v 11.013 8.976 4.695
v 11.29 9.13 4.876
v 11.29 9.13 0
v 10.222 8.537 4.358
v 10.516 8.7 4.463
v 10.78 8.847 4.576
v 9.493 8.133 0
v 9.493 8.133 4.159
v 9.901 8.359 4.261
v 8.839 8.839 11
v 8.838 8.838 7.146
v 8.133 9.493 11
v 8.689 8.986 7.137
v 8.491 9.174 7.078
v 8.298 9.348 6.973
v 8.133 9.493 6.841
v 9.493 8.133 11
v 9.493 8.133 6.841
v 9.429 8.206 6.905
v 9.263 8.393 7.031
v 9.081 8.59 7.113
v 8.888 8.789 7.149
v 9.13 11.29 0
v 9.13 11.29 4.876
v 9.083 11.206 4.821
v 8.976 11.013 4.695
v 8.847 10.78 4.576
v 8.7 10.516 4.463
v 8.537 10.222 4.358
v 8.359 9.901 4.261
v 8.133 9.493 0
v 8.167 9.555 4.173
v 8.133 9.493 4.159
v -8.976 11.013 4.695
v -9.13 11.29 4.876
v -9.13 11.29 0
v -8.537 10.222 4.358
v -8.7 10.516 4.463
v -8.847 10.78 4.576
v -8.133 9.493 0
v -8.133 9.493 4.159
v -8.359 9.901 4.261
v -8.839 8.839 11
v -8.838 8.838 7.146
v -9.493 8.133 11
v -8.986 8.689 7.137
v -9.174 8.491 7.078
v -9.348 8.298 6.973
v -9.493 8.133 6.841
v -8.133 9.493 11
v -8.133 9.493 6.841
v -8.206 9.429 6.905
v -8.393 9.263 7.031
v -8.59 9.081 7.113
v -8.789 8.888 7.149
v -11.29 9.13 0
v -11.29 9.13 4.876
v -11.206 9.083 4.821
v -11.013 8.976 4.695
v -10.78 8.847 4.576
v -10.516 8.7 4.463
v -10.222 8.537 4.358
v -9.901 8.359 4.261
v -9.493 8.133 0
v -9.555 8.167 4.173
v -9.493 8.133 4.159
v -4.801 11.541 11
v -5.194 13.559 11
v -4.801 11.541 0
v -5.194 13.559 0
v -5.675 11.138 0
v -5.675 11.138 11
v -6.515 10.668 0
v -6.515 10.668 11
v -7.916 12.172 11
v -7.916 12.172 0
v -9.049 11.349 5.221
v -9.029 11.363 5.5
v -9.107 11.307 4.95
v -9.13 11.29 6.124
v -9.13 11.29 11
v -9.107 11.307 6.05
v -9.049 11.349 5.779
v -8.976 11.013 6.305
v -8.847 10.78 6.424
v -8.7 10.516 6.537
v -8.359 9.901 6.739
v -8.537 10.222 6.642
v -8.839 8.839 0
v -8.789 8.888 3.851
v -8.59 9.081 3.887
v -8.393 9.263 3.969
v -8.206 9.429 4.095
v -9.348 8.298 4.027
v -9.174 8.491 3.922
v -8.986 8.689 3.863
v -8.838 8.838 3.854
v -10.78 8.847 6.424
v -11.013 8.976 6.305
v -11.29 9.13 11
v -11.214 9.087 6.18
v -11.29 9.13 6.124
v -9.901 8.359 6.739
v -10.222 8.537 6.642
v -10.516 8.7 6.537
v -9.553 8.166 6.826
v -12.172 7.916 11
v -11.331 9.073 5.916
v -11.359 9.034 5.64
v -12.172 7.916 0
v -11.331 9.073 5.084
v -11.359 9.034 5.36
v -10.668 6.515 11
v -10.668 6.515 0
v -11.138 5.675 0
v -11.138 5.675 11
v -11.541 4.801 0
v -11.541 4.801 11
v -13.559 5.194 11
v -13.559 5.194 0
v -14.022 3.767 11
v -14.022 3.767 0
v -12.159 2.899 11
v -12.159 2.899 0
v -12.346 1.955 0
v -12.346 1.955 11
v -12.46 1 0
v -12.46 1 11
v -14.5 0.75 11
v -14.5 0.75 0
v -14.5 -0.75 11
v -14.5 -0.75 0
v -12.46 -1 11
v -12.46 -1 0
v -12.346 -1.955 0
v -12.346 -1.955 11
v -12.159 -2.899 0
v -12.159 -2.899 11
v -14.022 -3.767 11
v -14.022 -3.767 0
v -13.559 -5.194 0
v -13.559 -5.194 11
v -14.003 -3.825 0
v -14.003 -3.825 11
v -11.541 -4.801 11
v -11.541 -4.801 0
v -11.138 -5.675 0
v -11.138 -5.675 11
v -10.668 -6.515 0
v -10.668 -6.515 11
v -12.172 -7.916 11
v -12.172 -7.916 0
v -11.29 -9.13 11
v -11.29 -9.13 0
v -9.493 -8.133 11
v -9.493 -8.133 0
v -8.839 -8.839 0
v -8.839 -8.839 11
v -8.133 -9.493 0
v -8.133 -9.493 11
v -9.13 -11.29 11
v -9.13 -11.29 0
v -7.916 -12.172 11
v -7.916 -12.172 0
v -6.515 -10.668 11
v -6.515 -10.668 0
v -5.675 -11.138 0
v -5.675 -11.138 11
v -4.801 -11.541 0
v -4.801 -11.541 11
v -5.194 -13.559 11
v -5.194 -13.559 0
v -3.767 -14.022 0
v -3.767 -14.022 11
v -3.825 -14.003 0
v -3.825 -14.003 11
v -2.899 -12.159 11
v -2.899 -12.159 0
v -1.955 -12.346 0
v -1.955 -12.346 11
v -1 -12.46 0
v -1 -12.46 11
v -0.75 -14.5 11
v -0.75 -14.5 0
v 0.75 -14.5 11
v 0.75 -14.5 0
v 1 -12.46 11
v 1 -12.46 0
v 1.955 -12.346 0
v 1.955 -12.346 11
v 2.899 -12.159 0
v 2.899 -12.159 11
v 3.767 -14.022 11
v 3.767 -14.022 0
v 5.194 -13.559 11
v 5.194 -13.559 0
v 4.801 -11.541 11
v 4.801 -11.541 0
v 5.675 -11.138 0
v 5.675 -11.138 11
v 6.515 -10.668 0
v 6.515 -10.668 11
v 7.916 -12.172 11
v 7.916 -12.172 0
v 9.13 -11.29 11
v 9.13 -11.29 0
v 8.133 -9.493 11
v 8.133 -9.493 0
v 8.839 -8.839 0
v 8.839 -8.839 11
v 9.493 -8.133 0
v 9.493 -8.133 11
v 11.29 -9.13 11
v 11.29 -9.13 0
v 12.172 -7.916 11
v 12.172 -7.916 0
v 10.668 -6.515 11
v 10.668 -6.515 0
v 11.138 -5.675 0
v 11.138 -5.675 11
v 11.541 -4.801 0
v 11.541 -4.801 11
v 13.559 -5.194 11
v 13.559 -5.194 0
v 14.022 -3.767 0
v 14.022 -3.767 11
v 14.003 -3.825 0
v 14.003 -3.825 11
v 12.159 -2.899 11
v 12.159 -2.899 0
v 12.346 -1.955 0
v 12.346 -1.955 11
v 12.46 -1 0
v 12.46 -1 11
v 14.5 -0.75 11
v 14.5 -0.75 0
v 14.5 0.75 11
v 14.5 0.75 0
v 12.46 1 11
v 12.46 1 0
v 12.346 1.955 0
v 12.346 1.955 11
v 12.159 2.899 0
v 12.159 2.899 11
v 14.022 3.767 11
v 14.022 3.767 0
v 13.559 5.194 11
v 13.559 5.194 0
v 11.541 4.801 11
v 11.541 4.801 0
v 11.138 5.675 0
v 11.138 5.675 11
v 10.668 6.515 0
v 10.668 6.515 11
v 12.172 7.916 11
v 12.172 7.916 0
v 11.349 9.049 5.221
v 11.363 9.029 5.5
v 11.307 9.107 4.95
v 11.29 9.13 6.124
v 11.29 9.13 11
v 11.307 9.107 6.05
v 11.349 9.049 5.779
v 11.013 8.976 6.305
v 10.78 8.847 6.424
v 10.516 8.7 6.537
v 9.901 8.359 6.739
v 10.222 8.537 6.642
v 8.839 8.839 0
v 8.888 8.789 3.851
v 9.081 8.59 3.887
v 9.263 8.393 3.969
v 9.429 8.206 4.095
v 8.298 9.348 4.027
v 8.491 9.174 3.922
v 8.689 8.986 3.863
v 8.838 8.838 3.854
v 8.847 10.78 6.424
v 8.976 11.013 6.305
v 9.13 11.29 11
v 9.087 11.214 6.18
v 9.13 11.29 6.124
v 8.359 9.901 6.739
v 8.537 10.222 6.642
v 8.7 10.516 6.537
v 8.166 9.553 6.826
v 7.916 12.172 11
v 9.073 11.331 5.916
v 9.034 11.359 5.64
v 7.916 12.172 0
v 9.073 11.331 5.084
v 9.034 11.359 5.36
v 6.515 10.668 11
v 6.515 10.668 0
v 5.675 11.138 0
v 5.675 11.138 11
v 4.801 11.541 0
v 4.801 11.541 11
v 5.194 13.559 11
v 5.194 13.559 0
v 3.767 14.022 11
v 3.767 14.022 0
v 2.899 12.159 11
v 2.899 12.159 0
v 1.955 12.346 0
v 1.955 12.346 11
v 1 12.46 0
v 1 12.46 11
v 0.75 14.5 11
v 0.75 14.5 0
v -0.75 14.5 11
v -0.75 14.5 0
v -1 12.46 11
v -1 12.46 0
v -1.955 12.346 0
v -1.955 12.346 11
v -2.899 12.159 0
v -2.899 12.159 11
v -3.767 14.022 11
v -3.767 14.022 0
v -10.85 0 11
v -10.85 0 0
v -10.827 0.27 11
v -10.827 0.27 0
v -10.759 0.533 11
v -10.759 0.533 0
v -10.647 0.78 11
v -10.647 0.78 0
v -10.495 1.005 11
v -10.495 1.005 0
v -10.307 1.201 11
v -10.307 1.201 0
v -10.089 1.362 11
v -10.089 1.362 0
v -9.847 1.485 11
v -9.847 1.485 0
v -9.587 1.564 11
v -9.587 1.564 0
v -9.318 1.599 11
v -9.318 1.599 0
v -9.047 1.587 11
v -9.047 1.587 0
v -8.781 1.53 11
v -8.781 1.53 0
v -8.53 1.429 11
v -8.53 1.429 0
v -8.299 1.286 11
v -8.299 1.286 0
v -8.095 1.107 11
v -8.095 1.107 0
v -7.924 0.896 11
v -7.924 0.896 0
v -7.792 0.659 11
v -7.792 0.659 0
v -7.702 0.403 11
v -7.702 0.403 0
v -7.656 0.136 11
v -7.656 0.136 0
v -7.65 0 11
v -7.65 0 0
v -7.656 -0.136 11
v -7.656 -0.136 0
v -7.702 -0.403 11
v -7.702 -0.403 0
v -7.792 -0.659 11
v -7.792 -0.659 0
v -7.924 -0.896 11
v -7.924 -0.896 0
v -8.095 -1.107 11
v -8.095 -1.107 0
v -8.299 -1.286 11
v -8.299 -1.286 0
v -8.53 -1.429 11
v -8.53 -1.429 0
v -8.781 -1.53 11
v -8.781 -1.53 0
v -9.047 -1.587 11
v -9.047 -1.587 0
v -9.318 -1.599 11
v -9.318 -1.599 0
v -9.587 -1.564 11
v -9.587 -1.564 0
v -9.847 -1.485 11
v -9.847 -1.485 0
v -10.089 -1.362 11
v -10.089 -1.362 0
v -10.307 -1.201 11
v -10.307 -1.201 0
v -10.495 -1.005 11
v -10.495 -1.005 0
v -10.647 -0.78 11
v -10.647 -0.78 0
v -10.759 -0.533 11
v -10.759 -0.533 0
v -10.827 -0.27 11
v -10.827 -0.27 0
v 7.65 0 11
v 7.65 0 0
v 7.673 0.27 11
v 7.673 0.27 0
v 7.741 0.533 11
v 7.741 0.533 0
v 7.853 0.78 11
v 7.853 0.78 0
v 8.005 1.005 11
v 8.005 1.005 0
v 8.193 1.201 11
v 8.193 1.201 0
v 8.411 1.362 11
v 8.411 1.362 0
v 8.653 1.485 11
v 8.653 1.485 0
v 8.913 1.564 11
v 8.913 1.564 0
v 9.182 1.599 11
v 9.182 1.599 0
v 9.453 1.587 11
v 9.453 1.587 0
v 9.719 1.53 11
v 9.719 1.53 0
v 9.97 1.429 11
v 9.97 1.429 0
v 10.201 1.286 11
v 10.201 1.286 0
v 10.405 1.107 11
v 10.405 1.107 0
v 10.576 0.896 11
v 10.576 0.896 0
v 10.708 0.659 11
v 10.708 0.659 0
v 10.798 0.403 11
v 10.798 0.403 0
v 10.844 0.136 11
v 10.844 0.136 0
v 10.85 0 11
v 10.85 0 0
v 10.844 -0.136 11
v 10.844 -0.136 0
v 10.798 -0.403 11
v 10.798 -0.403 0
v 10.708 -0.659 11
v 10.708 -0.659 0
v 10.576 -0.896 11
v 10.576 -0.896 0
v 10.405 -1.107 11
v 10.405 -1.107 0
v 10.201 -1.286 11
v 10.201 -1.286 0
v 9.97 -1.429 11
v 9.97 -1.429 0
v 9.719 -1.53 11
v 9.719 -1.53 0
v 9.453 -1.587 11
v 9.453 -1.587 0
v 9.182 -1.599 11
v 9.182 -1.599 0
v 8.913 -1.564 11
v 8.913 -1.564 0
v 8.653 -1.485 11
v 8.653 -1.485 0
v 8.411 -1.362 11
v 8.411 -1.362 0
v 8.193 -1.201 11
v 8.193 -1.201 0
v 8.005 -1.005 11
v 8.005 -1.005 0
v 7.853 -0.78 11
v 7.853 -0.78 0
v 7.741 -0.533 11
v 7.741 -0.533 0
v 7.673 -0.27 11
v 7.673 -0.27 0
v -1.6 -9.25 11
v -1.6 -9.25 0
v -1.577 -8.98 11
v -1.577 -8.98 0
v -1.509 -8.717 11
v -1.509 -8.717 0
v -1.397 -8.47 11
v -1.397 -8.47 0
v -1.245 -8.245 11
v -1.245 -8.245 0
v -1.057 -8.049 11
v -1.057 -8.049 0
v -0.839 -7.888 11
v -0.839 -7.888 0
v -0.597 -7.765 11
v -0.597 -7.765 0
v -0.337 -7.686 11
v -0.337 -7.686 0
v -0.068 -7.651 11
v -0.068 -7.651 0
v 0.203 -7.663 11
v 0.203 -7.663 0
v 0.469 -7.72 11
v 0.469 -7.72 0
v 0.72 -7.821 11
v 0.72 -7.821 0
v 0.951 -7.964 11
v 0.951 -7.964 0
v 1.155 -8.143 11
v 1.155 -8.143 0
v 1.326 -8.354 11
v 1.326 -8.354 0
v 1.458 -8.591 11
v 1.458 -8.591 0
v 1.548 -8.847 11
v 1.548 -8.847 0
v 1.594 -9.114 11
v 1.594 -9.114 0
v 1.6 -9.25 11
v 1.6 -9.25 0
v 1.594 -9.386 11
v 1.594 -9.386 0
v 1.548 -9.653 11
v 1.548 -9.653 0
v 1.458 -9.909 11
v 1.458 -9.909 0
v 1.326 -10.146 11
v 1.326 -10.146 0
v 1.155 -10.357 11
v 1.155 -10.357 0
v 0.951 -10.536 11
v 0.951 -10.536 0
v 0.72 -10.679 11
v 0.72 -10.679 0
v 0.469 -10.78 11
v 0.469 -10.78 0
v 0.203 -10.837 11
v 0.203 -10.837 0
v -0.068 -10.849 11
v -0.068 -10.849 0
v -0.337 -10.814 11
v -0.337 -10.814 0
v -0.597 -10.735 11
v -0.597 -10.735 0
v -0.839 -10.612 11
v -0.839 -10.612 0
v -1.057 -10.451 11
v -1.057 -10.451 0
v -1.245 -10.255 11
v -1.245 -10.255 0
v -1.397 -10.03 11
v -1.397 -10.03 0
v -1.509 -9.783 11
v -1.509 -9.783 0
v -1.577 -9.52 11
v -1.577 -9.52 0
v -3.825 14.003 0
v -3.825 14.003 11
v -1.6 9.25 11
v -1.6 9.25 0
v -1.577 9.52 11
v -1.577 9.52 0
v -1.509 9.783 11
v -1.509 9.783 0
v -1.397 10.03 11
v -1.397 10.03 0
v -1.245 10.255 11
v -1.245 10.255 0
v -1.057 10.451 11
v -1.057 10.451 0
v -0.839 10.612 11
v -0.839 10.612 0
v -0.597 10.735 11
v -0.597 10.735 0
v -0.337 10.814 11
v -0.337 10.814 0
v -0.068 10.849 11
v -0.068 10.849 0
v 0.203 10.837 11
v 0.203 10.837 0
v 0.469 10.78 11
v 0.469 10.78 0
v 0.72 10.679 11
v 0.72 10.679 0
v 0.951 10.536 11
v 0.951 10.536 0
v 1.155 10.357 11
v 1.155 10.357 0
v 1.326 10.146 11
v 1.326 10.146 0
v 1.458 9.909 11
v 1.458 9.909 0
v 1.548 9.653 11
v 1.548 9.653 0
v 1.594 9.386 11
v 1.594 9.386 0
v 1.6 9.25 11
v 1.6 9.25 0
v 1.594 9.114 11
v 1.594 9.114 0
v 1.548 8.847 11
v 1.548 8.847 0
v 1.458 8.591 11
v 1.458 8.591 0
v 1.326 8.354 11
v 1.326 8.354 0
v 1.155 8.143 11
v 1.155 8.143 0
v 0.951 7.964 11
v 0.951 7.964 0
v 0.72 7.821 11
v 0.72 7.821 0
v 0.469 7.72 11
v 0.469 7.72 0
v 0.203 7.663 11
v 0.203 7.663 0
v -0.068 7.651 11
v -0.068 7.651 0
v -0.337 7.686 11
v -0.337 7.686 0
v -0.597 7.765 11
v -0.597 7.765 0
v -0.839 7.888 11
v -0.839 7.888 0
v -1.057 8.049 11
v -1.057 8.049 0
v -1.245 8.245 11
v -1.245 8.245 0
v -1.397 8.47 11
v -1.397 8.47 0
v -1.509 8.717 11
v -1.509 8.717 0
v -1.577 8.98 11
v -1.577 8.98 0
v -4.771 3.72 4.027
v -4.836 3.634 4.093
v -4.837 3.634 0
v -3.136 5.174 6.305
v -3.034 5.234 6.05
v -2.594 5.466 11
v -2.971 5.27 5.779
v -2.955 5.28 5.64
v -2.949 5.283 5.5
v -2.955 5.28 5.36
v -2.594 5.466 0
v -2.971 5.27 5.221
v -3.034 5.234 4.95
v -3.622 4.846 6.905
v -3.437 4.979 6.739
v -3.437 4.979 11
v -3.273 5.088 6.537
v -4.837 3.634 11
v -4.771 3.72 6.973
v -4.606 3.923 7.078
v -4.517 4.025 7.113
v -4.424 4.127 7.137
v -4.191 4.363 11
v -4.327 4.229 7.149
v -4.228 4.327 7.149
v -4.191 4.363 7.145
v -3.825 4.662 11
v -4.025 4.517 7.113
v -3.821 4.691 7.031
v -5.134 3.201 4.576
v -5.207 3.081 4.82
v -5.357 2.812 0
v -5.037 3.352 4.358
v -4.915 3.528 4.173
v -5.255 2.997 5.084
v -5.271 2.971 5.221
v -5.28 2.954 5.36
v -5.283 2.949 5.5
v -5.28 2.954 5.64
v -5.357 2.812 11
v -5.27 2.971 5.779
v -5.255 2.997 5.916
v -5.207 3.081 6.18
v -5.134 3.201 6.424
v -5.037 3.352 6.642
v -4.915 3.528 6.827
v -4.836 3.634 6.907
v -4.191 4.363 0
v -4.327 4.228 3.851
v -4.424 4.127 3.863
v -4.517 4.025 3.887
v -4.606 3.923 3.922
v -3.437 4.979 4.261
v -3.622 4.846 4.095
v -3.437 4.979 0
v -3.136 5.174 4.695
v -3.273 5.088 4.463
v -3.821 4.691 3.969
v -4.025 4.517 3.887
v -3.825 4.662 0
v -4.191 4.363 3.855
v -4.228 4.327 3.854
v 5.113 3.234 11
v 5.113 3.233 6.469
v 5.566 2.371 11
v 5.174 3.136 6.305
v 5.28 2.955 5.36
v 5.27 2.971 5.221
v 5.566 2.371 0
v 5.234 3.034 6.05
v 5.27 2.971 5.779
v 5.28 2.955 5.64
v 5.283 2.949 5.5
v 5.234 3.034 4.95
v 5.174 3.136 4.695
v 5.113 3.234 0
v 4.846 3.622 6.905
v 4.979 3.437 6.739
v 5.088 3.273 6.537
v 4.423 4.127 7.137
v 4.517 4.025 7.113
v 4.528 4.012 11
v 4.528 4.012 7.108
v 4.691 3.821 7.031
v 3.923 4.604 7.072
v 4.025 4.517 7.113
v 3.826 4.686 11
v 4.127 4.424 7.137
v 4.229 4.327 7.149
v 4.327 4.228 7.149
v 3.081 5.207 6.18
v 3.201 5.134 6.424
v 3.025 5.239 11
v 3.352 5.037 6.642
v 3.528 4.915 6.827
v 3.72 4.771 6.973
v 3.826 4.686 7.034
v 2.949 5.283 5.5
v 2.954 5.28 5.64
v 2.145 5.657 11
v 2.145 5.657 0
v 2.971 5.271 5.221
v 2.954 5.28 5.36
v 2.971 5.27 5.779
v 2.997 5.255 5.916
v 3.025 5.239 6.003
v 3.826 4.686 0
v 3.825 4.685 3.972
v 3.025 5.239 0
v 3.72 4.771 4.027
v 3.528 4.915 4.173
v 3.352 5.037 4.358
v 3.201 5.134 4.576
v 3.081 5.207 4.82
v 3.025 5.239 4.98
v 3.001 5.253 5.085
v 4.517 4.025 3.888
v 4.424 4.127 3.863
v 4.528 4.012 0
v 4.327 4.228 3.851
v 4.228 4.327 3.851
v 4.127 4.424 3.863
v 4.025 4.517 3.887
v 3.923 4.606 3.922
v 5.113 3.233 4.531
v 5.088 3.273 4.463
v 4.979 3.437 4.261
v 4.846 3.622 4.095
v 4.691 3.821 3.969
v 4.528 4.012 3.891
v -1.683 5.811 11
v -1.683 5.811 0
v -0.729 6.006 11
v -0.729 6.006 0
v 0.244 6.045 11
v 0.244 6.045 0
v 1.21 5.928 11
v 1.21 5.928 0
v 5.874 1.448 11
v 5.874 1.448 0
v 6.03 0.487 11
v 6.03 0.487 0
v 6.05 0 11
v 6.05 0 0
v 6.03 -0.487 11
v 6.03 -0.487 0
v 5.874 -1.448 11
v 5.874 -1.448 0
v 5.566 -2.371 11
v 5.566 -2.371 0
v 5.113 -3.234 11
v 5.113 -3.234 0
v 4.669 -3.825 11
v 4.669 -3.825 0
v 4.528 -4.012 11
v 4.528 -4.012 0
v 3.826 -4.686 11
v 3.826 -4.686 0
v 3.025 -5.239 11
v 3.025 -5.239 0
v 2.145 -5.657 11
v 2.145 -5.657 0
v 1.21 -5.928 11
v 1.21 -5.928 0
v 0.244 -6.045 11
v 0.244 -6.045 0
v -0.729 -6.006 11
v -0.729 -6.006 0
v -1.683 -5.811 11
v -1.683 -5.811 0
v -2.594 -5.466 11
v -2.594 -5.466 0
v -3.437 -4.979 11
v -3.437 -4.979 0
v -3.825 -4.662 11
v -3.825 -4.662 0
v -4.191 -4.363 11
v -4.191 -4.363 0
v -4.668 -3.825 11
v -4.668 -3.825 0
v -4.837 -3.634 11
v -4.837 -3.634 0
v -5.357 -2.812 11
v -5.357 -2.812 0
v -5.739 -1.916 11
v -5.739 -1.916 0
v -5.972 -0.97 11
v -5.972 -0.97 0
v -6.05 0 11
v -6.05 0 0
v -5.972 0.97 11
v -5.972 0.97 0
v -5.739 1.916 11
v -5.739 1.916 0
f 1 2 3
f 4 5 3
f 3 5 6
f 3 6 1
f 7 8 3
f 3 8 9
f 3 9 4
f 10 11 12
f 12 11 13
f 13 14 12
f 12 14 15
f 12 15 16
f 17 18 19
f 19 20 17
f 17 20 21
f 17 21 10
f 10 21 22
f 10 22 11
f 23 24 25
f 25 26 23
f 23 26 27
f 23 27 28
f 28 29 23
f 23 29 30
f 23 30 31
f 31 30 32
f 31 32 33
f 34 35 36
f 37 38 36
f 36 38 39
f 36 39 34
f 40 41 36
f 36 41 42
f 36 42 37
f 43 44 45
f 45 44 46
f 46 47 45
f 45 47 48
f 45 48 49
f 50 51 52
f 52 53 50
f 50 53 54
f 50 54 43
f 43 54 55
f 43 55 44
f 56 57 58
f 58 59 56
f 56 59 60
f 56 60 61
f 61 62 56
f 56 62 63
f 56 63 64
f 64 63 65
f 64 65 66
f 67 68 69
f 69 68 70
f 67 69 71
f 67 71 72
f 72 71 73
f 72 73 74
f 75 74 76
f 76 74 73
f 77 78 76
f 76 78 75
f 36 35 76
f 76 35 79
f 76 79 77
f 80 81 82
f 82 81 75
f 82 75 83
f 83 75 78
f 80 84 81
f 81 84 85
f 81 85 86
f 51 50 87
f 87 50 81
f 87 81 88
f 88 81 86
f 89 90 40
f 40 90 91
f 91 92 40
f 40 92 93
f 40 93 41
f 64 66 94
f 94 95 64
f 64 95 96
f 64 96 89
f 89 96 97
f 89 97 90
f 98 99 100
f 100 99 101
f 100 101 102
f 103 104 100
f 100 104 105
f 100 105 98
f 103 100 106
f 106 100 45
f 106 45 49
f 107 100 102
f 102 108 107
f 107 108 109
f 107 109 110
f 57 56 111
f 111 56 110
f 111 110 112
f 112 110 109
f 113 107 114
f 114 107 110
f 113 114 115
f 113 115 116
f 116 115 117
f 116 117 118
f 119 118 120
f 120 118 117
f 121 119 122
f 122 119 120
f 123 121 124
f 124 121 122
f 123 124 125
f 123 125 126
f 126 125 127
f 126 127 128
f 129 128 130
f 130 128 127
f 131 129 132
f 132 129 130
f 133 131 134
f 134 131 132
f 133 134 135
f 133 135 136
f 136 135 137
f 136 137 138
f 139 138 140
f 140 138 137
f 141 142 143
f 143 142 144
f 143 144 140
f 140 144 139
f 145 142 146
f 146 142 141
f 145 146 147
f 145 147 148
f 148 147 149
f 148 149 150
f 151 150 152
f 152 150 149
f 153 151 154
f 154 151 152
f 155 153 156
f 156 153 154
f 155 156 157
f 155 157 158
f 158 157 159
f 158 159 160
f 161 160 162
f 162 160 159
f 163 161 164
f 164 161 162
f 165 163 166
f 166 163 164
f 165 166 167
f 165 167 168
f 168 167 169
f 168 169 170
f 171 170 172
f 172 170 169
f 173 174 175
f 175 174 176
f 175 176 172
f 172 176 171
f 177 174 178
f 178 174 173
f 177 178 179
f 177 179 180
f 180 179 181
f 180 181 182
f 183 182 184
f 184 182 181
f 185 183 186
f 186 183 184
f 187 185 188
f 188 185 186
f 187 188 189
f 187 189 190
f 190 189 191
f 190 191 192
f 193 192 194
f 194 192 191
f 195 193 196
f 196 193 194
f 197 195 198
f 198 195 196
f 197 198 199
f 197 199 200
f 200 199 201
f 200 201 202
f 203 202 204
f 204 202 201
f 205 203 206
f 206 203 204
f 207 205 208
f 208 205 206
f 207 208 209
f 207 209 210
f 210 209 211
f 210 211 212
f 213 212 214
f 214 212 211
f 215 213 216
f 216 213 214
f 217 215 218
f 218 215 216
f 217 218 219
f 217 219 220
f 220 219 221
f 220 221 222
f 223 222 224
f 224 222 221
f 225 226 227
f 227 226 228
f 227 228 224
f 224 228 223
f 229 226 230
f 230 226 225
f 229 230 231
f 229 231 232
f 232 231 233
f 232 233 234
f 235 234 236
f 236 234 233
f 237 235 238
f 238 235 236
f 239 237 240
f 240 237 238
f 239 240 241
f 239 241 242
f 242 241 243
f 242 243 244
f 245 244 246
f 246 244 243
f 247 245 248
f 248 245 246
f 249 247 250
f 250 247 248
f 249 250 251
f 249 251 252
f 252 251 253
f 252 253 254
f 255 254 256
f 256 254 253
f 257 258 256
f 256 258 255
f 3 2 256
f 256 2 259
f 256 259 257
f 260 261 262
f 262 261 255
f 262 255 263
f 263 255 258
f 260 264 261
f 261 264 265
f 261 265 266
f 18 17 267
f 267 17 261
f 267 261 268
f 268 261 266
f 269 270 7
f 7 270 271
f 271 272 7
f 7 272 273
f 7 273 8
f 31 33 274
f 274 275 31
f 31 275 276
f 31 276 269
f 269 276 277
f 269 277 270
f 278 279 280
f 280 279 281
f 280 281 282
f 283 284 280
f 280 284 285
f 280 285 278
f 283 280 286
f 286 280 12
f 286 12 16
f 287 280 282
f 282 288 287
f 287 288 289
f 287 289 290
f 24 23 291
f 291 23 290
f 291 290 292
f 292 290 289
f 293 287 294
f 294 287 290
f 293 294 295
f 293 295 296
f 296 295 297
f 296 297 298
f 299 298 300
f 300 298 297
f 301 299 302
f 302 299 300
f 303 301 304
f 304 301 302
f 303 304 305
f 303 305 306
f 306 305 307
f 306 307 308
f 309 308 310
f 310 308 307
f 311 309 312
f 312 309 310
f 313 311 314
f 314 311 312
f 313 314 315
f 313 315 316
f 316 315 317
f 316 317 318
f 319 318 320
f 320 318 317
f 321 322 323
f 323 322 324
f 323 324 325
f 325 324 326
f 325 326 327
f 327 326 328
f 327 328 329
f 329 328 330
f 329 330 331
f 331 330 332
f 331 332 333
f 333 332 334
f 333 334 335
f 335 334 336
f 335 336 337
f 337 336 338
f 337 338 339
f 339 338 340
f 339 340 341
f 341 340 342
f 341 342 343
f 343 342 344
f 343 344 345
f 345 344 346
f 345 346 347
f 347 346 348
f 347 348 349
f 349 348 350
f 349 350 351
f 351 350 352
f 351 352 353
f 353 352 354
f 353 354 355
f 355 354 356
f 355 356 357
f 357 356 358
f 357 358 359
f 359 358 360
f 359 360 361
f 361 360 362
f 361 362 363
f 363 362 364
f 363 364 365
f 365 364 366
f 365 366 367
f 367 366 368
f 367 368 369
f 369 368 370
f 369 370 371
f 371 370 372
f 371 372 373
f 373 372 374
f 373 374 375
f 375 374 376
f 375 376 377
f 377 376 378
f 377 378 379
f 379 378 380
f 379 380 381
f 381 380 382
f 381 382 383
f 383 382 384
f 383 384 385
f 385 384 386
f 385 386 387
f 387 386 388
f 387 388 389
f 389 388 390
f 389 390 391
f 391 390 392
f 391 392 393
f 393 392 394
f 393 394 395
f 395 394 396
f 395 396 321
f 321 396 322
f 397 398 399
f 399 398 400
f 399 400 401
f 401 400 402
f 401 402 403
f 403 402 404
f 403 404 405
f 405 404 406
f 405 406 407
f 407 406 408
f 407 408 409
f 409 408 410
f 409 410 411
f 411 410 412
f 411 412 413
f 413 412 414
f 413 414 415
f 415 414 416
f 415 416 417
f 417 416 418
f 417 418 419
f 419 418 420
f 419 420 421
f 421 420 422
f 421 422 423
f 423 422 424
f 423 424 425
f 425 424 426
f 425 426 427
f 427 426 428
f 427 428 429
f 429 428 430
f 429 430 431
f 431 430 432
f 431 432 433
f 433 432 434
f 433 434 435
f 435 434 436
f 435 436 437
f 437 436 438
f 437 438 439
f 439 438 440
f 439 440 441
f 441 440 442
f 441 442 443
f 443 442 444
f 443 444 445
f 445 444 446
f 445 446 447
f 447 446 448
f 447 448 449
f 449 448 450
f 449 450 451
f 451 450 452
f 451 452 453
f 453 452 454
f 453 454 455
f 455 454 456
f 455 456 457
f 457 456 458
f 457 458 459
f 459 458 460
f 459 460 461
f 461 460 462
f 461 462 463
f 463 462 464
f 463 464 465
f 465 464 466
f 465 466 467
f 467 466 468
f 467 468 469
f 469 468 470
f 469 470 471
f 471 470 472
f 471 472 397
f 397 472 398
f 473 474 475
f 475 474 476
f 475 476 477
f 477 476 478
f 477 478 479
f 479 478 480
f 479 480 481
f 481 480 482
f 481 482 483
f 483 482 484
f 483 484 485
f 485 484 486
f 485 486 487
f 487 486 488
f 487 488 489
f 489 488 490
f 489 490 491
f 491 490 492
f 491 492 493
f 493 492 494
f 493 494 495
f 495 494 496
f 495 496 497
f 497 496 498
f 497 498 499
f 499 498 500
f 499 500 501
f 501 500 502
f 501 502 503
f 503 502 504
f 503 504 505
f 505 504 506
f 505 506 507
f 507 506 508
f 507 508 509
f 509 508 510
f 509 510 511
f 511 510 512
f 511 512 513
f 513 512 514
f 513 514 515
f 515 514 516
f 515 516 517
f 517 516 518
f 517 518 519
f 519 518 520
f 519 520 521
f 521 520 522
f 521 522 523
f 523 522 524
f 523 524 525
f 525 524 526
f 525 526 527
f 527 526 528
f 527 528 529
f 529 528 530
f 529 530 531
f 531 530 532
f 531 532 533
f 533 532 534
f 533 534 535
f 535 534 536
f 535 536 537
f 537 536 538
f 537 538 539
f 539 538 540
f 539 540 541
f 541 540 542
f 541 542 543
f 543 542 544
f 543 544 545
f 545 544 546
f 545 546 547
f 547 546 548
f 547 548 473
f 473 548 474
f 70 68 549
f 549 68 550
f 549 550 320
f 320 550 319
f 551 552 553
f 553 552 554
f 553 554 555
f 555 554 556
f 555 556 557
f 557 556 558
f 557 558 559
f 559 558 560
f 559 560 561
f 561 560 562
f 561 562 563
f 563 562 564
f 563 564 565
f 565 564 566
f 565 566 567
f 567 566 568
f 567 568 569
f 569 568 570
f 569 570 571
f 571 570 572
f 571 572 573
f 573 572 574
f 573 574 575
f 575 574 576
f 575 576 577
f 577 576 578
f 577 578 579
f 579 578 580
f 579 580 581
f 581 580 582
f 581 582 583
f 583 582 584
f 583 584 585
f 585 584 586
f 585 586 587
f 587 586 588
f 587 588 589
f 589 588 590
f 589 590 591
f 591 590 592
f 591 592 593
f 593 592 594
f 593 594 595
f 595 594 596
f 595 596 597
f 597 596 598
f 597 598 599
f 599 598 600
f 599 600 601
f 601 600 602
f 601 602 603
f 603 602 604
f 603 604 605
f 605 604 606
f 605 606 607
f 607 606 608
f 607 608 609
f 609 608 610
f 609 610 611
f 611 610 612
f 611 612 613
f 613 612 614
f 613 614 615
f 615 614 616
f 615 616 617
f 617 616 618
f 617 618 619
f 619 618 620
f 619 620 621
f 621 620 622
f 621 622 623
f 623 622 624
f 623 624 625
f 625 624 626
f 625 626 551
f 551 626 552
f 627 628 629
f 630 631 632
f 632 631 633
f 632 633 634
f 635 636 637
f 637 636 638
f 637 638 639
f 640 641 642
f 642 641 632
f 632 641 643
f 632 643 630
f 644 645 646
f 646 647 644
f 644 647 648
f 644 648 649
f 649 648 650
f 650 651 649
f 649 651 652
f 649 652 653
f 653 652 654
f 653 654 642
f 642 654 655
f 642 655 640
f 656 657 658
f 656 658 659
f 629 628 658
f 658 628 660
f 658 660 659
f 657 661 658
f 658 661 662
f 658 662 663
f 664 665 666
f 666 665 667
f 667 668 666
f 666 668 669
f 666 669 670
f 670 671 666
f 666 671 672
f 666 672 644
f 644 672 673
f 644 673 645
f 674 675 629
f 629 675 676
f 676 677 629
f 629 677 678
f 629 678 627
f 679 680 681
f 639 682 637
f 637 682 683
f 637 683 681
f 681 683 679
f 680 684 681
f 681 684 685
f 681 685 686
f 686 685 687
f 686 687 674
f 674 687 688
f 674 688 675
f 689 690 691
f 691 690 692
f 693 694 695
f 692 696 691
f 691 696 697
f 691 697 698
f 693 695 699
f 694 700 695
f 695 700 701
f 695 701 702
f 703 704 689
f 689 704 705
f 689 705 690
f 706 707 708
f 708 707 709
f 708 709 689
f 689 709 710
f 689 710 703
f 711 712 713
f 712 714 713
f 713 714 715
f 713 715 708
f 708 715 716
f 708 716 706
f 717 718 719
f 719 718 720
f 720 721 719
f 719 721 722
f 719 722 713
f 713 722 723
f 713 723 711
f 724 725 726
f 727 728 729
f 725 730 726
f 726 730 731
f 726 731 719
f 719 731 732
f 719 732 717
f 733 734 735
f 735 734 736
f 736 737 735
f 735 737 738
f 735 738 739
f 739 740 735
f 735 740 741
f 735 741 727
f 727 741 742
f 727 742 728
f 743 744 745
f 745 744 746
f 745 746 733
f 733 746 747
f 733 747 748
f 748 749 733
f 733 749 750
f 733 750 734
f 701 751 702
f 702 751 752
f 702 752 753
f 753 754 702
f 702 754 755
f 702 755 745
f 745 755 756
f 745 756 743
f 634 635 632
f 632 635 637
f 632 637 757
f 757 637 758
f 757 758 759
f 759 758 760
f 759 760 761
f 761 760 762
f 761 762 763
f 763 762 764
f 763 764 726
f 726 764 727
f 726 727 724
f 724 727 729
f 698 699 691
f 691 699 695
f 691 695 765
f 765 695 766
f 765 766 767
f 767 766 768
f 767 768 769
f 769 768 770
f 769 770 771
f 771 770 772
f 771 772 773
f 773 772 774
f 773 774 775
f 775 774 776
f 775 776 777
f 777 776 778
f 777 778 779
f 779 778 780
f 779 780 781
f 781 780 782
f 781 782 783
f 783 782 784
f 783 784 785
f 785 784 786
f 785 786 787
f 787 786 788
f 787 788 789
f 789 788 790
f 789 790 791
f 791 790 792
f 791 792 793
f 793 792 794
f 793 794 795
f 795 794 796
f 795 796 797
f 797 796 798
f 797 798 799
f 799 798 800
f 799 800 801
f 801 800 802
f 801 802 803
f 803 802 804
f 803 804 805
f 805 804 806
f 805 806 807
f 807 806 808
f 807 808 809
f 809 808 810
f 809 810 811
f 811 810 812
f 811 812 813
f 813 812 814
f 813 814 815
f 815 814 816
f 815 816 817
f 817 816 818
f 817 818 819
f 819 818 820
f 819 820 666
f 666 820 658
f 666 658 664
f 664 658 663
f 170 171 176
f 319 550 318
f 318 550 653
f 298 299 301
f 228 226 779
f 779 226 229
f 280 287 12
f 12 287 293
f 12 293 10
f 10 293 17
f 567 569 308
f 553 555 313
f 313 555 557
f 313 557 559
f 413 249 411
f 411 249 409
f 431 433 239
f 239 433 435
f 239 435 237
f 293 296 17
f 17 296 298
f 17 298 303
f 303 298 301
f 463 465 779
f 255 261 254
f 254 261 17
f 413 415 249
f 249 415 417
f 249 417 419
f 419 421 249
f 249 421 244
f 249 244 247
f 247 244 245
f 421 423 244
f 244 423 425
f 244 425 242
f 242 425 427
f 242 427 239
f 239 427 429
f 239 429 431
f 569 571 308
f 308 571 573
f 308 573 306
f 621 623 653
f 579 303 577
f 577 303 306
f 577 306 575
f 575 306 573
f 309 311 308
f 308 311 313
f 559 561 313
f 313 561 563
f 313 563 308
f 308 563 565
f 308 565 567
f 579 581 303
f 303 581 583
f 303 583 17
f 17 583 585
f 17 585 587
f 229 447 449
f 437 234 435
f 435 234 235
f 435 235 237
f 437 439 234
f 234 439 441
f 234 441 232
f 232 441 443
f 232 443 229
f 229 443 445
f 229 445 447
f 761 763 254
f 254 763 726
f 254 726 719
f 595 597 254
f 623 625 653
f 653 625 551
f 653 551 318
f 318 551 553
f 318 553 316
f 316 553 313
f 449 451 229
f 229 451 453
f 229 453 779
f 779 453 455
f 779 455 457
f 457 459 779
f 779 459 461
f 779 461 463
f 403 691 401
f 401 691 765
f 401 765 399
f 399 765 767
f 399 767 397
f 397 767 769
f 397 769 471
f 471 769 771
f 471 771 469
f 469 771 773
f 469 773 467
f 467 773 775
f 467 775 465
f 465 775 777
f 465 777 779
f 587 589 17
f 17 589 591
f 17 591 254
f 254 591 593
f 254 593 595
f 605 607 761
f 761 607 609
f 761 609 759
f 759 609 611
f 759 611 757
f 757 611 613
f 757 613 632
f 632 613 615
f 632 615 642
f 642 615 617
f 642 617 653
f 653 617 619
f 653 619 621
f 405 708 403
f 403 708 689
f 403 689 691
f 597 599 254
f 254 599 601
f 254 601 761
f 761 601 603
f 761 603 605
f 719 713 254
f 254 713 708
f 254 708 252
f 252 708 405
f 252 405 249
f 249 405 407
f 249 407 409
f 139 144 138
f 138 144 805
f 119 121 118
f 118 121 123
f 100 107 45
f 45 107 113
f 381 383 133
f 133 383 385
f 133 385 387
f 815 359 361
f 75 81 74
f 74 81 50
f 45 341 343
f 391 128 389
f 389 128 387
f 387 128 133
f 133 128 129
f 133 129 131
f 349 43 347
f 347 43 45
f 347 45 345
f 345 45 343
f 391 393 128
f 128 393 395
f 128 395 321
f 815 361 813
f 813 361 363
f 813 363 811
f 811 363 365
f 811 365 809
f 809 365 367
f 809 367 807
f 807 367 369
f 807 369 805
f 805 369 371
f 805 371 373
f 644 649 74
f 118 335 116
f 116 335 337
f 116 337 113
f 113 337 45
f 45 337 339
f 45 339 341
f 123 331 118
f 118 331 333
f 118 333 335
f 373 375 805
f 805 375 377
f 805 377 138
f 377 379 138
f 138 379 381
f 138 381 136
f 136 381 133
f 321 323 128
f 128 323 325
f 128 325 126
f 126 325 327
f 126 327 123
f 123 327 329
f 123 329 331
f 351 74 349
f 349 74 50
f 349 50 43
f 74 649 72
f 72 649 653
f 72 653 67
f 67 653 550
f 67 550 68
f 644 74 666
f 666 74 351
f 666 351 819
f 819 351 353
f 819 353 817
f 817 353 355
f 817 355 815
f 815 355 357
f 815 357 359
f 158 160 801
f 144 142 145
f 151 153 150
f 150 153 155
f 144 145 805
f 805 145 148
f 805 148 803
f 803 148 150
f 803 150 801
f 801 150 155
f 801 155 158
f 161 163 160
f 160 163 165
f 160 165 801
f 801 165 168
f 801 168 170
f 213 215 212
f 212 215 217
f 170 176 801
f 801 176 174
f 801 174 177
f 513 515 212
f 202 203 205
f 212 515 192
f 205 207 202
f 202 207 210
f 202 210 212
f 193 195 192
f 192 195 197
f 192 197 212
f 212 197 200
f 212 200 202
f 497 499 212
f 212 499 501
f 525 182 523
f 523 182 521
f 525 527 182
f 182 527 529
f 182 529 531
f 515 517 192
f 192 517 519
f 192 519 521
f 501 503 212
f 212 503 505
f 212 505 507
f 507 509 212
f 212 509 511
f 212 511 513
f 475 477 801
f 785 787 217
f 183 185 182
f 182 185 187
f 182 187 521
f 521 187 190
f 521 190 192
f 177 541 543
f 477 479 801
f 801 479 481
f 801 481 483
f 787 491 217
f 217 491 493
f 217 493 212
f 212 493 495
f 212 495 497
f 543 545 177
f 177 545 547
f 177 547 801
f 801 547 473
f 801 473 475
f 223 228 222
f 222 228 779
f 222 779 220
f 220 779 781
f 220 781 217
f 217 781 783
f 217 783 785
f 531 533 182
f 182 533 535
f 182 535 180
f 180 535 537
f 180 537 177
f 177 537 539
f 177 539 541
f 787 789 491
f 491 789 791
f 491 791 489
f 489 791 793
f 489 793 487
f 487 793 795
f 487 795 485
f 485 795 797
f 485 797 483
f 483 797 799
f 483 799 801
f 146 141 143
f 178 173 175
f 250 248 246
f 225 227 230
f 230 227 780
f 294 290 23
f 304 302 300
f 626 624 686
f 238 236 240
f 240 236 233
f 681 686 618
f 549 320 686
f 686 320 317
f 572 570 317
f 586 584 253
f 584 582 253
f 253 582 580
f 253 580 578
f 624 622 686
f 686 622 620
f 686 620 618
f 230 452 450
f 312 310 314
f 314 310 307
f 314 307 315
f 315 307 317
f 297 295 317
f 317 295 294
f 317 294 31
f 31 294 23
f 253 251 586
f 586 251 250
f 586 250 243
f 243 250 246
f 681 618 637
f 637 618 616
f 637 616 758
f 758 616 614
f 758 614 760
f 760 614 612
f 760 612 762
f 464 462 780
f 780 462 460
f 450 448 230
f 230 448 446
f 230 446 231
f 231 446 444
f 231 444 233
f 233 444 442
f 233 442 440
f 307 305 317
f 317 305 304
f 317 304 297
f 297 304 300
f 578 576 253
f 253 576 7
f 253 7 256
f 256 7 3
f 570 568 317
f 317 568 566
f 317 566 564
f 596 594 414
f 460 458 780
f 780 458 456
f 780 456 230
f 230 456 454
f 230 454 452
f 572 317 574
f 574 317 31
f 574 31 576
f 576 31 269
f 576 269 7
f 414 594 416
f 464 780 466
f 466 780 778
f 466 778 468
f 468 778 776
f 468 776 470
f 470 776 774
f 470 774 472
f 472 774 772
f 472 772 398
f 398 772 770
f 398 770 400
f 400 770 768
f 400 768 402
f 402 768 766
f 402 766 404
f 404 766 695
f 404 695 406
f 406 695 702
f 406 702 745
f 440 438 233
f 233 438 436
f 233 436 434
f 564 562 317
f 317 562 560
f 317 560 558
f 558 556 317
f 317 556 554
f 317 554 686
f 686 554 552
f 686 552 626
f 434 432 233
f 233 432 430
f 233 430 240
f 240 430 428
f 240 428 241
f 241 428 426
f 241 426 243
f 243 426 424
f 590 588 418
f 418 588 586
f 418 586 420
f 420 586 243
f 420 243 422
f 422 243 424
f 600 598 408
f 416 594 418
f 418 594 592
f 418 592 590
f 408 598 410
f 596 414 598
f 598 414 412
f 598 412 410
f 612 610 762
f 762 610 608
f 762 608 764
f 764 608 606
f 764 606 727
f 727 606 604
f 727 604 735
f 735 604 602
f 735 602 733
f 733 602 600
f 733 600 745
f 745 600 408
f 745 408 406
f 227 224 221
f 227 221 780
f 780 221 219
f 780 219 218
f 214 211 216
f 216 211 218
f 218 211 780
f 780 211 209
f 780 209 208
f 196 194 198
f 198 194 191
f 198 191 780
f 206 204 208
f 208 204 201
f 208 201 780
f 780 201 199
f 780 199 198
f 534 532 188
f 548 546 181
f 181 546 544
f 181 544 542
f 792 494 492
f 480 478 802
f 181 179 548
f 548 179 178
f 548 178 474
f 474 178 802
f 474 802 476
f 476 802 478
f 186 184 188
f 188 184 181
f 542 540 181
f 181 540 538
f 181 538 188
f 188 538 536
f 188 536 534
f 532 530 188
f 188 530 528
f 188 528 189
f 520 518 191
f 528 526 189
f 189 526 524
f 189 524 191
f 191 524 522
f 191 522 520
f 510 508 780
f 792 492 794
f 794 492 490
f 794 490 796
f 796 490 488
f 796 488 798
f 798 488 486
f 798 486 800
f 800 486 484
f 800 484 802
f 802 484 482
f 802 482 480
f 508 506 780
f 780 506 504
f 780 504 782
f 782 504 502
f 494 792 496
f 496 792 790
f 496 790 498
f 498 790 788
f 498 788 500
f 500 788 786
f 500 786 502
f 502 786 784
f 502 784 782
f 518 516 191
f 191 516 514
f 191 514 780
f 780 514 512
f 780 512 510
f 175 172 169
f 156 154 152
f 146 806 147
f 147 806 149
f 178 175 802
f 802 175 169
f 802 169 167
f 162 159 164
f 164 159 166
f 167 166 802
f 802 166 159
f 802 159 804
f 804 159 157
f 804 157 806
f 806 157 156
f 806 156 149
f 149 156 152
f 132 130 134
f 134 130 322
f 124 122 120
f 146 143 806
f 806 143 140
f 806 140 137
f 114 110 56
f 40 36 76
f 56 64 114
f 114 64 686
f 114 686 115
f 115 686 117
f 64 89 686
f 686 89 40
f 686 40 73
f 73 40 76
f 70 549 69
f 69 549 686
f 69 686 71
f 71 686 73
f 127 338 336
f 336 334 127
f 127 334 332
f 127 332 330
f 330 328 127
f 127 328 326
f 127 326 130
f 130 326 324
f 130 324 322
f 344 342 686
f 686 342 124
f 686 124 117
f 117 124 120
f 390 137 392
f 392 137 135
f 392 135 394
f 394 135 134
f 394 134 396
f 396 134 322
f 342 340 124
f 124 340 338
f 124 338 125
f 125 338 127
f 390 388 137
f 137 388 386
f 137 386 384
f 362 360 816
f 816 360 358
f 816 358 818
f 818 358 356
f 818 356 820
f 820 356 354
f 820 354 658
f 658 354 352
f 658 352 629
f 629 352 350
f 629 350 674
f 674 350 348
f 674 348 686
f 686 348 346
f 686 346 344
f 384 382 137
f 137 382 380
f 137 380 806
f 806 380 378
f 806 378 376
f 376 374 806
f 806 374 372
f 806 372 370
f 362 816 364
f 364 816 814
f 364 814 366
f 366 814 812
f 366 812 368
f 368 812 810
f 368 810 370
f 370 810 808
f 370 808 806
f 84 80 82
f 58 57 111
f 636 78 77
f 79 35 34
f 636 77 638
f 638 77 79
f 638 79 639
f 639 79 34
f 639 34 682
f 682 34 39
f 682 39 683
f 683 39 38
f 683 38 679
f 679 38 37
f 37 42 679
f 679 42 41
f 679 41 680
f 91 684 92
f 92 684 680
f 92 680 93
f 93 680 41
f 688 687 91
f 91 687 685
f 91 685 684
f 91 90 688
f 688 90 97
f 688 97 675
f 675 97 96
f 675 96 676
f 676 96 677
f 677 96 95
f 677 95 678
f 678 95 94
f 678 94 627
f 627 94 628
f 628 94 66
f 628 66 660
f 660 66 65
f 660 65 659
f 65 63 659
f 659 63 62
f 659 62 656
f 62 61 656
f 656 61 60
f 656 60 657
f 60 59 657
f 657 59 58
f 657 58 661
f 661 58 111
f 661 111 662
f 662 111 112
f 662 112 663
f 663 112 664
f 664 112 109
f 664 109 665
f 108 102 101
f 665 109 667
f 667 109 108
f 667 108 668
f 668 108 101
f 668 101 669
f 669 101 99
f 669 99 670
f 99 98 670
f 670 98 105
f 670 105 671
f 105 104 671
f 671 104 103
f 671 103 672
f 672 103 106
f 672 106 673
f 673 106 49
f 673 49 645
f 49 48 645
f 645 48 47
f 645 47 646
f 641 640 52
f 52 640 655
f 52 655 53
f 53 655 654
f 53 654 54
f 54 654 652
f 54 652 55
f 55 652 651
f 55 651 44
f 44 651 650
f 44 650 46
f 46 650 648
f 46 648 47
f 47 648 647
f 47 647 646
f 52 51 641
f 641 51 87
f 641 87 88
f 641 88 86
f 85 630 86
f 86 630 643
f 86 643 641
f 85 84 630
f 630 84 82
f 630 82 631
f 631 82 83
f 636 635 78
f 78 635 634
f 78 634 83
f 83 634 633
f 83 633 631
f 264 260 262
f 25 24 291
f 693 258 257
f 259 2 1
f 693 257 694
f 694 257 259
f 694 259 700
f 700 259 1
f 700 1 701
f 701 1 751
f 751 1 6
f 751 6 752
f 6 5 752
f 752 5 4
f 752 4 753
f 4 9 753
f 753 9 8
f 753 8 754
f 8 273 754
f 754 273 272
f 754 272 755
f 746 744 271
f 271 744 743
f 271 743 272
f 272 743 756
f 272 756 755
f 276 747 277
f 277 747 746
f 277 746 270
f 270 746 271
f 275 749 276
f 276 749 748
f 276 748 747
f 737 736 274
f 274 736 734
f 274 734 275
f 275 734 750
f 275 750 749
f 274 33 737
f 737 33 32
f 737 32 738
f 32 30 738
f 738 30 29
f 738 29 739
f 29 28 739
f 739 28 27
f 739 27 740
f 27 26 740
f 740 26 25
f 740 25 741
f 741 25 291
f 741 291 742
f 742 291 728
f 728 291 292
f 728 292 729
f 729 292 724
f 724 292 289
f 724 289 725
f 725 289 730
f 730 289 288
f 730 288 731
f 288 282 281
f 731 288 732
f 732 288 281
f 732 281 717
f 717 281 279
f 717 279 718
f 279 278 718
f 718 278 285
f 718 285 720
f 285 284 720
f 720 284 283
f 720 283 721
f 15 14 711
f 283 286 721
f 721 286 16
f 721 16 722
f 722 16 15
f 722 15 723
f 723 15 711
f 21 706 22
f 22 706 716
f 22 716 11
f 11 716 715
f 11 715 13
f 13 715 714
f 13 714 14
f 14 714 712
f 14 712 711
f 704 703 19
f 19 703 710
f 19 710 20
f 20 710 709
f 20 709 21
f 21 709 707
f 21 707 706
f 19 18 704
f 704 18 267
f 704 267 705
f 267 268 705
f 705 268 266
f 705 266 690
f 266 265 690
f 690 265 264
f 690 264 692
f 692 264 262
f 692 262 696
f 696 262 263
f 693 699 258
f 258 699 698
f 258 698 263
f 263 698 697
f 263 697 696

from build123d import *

# Parameters (mm, degrees)
SKETCH_1_R          = 1.6
SKETCH_1_R_2        = 6.05
EXTRUDE_1_DEPTH     = 11
SKETCH_2_R          = 1.65
CUT_EXTRUDE_3_DEPTH = 24.270152556
SKETCH_3_R          = 1.65
CUT_EXTRUDE_4_DEPTH = 24.270152604


with BuildPart() as part:
    # ｽｹｯﾁ1 → ﾎﾞｽ - 押し出し1 (new body)
    with BuildSketch(Plane.XY):
        with BuildLine():
            Line((1, 12.459935794), (0.75, 14.5))
            Line((0.75, 14.5), (-0.75, 14.5))
            Line((-0.75, 14.5), (-1, 12.459935794))
            ThreePointArc((-1, 12.459935794), (-1.955430813, 12.346104257), (-2.899275393, 12.159120124))
            Line((-2.899275393, 12.159120124), (-3.767454031, 14.022082232))
            Line((-3.767454031, 14.022082232), (-5.194038806, 13.55855674))
            Line((-5.194038806, 13.55855674), (-4.801388426, 11.541086135))
            ThreePointArc((-4.801388426, 11.541086135), (-5.674881247, 11.137581552), (-6.51474951, 10.668085059))
            Line((-6.51474951, 10.668085059), (-7.916123412, 12.171585358))
            Line((-7.916123412, 12.171585358), (-9.129648904, 11.289907479))
            Line((-9.129648904, 11.289907479), (-8.132783499, 9.492514554))
            ThreePointArc((-8.132783499, 9.492514554), (-8.838834765, 8.838834765), (-9.492514554, 8.132783499))
            Line((-9.492514554, 8.132783499), (-11.289907479, 9.129648904))
            Line((-11.289907479, 9.129648904), (-12.171585358, 7.916123412))
            Line((-12.171585358, 7.916123412), (-10.668085059, 6.51474951))
            ThreePointArc((-10.668085059, 6.51474951), (-11.137581552, 5.674881247), (-11.541086135, 4.801388426))
            Line((-11.541086135, 4.801388426), (-13.55855674, 5.194038806))
            Line((-13.55855674, 5.194038806), (-14.022082232, 3.767454031))
            Line((-14.022082232, 3.767454031), (-12.159120124, 2.899275393))
            ThreePointArc((-12.159120124, 2.899275393), (-12.346104257, 1.955430813), (-12.459935794, 1))
            Line((-12.459935794, 1), (-14.5, 0.75))
            Line((-14.5, 0.75), (-14.5, -0.75))
            Line((-14.5, -0.75), (-12.459935794, -1))
            ThreePointArc((-12.459935794, -1), (-12.346104257, -1.955430813), (-12.159120124, -2.899275393))
            Line((-12.159120124, -2.899275393), (-14.022082232, -3.767454031))
            Line((-14.022082232, -3.767454031), (-13.55855674, -5.194038806))
            Line((-13.55855674, -5.194038806), (-11.541086135, -4.801388426))
            ThreePointArc((-11.541086135, -4.801388426), (-11.137581552, -5.674881247), (-10.668085059, -6.51474951))
            Line((-10.668085059, -6.51474951), (-12.171585358, -7.916123412))
            Line((-12.171585358, -7.916123412), (-11.289907479, -9.129648904))
            Line((-11.289907479, -9.129648904), (-9.492514554, -8.132783499))
            ThreePointArc((-9.492514554, -8.132783499), (-8.838834765, -8.838834765), (-8.132783499, -9.492514554))
            Line((-8.132783499, -9.492514554), (-9.129648904, -11.289907479))
            Line((-9.129648904, -11.289907479), (-7.916123412, -12.171585358))
            Line((-7.916123412, -12.171585358), (-6.51474951, -10.668085059))
            ThreePointArc((-6.51474951, -10.668085059), (-5.674881247, -11.137581552), (-4.801388426, -11.541086135))
            Line((-4.801388426, -11.541086135), (-5.194038806, -13.55855674))
            Line((-5.194038806, -13.55855674), (-3.767454031, -14.022082232))
            Line((-3.767454031, -14.022082232), (-2.899275393, -12.159120124))
            ThreePointArc((-2.899275393, -12.159120124), (-1.955430813, -12.346104257), (-1, -12.459935794))
            Line((-1, -12.459935794), (-0.75, -14.5))
            Line((-0.75, -14.5), (0.75, -14.5))
            Line((0.75, -14.5), (1, -12.459935794))
            ThreePointArc((1, -12.459935794), (1.955430813, -12.346104257), (2.899275393, -12.159120124))
            Line((2.899275393, -12.159120124), (3.767454031, -14.022082232))
            Line((3.767454031, -14.022082232), (5.194038806, -13.55855674))
            Line((5.194038806, -13.55855674), (4.801388426, -11.541086135))
            ThreePointArc((4.801388426, -11.541086135), (5.674881247, -11.137581552), (6.51474951, -10.668085059))
            Line((6.51474951, -10.668085059), (7.916123412, -12.171585358))
            Line((7.916123412, -12.171585358), (9.129648904, -11.289907479))
            Line((9.129648904, -11.289907479), (8.132783499, -9.492514554))
            ThreePointArc((8.132783499, -9.492514554), (8.838834765, -8.838834765), (9.492514554, -8.132783499))
            Line((9.492514554, -8.132783499), (11.289907479, -9.129648904))
            Line((11.289907479, -9.129648904), (12.171585358, -7.916123412))
            Line((12.171585358, -7.916123412), (10.668085059, -6.51474951))
            ThreePointArc((10.668085059, -6.51474951), (11.137581552, -5.674881247), (11.541086135, -4.801388426))
            Line((11.541086135, -4.801388426), (13.558556741, -5.194038806))
            Line((13.558556741, -5.194038806), (14.022082232, -3.767454031))
            Line((14.022082232, -3.767454031), (12.159120124, -2.899275393))
            ThreePointArc((12.159120124, -2.899275393), (12.346104257, -1.955430813), (12.459935794, -1))
            Line((12.459935794, -1), (14.5, -0.75))
            Line((14.5, -0.75), (14.5, 0.75))
            Line((14.5, 0.75), (12.459935794, 1))
            ThreePointArc((12.459935794, 1), (12.346104257, 1.955430813), (12.159120124, 2.899275393))
            Line((12.159120124, 2.899275393), (14.022082232, 3.767454031))
            Line((14.022082232, 3.767454031), (13.55855674, 5.194038806))
            Line((13.55855674, 5.194038806), (11.541086135, 4.801388426))
            ThreePointArc((11.541086135, 4.801388426), (11.137581552, 5.674881247), (10.668085059, 6.51474951))
            Line((10.668085059, 6.51474951), (12.171585358, 7.916123412))
            Line((12.171585358, 7.916123412), (11.289907479, 9.129648904))
            Line((11.289907479, 9.129648904), (9.492514554, 8.132783499))
            ThreePointArc((9.492514554, 8.132783499), (8.838834765, 8.838834765), (8.132783499, 9.492514554))
            Line((8.132783499, 9.492514554), (9.129648904, 11.289907479))
            Line((9.129648904, 11.289907479), (7.916123412, 12.171585358))
            Line((7.916123412, 12.171585358), (6.51474951, 10.668085059))
            ThreePointArc((6.51474951, 10.668085059), (5.674881247, 11.137581552), (4.801388426, 11.541086135))
            Line((4.801388426, 11.541086135), (5.194038806, 13.55855674))
            Line((5.194038806, 13.55855674), (3.767454031, 14.022082232))
            Line((3.767454031, 14.022082232), (2.899275393, 12.159120124))
            ThreePointArc((2.899275393, 12.159120124), (1.955430813, 12.346104257), (1, 12.459935794))
        make_face()
        with Locations((-9.25, 0)):
            Circle(SKETCH_1_R, mode=Mode.SUBTRACT)
        with Locations((0, -9.25)):
            Circle(SKETCH_1_R, mode=Mode.SUBTRACT)
        Circle(SKETCH_1_R_2, mode=Mode.SUBTRACT)
        with Locations((9.25, 0)):
            Circle(SKETCH_1_R, mode=Mode.SUBTRACT)
        with Locations((0, 9.25)):
            Circle(SKETCH_1_R, mode=Mode.SUBTRACT)
    extrude(amount=EXTRUDE_1_DEPTH)

    # ｽｹｯﾁ2 → ｶｯﾄ - 押し出し3 (cut, through all)
    with BuildSketch(Plane(origin=(0, 0, 0), x_dir=(0, 0, -1), z_dir=(0.7071067811865464, -0.7071067811865488, 0))):
        with Locations(Location((-5.5, 0, 0), (0, 0, 90))):
            Circle(SKETCH_2_R)
    extrude(amount=-CUT_EXTRUDE_3_DEPTH, mode=Mode.SUBTRACT)

    # ｽｹｯﾁ3 → ｶｯﾄ - 押し出し4 (cut, through all)
    with BuildSketch(Plane(origin=(0, 0, 0), x_dir=(0, 0, -1), z_dir=(-0.7071067811865512, -0.7071067811865439, 0))):
        with Locations(Location((-5.5, 0, 0), (0, 0, 90))):
            Circle(SKETCH_3_R)
    extrude(amount=-CUT_EXTRUDE_4_DEPTH, mode=Mode.SUBTRACT)


solid = part.part
